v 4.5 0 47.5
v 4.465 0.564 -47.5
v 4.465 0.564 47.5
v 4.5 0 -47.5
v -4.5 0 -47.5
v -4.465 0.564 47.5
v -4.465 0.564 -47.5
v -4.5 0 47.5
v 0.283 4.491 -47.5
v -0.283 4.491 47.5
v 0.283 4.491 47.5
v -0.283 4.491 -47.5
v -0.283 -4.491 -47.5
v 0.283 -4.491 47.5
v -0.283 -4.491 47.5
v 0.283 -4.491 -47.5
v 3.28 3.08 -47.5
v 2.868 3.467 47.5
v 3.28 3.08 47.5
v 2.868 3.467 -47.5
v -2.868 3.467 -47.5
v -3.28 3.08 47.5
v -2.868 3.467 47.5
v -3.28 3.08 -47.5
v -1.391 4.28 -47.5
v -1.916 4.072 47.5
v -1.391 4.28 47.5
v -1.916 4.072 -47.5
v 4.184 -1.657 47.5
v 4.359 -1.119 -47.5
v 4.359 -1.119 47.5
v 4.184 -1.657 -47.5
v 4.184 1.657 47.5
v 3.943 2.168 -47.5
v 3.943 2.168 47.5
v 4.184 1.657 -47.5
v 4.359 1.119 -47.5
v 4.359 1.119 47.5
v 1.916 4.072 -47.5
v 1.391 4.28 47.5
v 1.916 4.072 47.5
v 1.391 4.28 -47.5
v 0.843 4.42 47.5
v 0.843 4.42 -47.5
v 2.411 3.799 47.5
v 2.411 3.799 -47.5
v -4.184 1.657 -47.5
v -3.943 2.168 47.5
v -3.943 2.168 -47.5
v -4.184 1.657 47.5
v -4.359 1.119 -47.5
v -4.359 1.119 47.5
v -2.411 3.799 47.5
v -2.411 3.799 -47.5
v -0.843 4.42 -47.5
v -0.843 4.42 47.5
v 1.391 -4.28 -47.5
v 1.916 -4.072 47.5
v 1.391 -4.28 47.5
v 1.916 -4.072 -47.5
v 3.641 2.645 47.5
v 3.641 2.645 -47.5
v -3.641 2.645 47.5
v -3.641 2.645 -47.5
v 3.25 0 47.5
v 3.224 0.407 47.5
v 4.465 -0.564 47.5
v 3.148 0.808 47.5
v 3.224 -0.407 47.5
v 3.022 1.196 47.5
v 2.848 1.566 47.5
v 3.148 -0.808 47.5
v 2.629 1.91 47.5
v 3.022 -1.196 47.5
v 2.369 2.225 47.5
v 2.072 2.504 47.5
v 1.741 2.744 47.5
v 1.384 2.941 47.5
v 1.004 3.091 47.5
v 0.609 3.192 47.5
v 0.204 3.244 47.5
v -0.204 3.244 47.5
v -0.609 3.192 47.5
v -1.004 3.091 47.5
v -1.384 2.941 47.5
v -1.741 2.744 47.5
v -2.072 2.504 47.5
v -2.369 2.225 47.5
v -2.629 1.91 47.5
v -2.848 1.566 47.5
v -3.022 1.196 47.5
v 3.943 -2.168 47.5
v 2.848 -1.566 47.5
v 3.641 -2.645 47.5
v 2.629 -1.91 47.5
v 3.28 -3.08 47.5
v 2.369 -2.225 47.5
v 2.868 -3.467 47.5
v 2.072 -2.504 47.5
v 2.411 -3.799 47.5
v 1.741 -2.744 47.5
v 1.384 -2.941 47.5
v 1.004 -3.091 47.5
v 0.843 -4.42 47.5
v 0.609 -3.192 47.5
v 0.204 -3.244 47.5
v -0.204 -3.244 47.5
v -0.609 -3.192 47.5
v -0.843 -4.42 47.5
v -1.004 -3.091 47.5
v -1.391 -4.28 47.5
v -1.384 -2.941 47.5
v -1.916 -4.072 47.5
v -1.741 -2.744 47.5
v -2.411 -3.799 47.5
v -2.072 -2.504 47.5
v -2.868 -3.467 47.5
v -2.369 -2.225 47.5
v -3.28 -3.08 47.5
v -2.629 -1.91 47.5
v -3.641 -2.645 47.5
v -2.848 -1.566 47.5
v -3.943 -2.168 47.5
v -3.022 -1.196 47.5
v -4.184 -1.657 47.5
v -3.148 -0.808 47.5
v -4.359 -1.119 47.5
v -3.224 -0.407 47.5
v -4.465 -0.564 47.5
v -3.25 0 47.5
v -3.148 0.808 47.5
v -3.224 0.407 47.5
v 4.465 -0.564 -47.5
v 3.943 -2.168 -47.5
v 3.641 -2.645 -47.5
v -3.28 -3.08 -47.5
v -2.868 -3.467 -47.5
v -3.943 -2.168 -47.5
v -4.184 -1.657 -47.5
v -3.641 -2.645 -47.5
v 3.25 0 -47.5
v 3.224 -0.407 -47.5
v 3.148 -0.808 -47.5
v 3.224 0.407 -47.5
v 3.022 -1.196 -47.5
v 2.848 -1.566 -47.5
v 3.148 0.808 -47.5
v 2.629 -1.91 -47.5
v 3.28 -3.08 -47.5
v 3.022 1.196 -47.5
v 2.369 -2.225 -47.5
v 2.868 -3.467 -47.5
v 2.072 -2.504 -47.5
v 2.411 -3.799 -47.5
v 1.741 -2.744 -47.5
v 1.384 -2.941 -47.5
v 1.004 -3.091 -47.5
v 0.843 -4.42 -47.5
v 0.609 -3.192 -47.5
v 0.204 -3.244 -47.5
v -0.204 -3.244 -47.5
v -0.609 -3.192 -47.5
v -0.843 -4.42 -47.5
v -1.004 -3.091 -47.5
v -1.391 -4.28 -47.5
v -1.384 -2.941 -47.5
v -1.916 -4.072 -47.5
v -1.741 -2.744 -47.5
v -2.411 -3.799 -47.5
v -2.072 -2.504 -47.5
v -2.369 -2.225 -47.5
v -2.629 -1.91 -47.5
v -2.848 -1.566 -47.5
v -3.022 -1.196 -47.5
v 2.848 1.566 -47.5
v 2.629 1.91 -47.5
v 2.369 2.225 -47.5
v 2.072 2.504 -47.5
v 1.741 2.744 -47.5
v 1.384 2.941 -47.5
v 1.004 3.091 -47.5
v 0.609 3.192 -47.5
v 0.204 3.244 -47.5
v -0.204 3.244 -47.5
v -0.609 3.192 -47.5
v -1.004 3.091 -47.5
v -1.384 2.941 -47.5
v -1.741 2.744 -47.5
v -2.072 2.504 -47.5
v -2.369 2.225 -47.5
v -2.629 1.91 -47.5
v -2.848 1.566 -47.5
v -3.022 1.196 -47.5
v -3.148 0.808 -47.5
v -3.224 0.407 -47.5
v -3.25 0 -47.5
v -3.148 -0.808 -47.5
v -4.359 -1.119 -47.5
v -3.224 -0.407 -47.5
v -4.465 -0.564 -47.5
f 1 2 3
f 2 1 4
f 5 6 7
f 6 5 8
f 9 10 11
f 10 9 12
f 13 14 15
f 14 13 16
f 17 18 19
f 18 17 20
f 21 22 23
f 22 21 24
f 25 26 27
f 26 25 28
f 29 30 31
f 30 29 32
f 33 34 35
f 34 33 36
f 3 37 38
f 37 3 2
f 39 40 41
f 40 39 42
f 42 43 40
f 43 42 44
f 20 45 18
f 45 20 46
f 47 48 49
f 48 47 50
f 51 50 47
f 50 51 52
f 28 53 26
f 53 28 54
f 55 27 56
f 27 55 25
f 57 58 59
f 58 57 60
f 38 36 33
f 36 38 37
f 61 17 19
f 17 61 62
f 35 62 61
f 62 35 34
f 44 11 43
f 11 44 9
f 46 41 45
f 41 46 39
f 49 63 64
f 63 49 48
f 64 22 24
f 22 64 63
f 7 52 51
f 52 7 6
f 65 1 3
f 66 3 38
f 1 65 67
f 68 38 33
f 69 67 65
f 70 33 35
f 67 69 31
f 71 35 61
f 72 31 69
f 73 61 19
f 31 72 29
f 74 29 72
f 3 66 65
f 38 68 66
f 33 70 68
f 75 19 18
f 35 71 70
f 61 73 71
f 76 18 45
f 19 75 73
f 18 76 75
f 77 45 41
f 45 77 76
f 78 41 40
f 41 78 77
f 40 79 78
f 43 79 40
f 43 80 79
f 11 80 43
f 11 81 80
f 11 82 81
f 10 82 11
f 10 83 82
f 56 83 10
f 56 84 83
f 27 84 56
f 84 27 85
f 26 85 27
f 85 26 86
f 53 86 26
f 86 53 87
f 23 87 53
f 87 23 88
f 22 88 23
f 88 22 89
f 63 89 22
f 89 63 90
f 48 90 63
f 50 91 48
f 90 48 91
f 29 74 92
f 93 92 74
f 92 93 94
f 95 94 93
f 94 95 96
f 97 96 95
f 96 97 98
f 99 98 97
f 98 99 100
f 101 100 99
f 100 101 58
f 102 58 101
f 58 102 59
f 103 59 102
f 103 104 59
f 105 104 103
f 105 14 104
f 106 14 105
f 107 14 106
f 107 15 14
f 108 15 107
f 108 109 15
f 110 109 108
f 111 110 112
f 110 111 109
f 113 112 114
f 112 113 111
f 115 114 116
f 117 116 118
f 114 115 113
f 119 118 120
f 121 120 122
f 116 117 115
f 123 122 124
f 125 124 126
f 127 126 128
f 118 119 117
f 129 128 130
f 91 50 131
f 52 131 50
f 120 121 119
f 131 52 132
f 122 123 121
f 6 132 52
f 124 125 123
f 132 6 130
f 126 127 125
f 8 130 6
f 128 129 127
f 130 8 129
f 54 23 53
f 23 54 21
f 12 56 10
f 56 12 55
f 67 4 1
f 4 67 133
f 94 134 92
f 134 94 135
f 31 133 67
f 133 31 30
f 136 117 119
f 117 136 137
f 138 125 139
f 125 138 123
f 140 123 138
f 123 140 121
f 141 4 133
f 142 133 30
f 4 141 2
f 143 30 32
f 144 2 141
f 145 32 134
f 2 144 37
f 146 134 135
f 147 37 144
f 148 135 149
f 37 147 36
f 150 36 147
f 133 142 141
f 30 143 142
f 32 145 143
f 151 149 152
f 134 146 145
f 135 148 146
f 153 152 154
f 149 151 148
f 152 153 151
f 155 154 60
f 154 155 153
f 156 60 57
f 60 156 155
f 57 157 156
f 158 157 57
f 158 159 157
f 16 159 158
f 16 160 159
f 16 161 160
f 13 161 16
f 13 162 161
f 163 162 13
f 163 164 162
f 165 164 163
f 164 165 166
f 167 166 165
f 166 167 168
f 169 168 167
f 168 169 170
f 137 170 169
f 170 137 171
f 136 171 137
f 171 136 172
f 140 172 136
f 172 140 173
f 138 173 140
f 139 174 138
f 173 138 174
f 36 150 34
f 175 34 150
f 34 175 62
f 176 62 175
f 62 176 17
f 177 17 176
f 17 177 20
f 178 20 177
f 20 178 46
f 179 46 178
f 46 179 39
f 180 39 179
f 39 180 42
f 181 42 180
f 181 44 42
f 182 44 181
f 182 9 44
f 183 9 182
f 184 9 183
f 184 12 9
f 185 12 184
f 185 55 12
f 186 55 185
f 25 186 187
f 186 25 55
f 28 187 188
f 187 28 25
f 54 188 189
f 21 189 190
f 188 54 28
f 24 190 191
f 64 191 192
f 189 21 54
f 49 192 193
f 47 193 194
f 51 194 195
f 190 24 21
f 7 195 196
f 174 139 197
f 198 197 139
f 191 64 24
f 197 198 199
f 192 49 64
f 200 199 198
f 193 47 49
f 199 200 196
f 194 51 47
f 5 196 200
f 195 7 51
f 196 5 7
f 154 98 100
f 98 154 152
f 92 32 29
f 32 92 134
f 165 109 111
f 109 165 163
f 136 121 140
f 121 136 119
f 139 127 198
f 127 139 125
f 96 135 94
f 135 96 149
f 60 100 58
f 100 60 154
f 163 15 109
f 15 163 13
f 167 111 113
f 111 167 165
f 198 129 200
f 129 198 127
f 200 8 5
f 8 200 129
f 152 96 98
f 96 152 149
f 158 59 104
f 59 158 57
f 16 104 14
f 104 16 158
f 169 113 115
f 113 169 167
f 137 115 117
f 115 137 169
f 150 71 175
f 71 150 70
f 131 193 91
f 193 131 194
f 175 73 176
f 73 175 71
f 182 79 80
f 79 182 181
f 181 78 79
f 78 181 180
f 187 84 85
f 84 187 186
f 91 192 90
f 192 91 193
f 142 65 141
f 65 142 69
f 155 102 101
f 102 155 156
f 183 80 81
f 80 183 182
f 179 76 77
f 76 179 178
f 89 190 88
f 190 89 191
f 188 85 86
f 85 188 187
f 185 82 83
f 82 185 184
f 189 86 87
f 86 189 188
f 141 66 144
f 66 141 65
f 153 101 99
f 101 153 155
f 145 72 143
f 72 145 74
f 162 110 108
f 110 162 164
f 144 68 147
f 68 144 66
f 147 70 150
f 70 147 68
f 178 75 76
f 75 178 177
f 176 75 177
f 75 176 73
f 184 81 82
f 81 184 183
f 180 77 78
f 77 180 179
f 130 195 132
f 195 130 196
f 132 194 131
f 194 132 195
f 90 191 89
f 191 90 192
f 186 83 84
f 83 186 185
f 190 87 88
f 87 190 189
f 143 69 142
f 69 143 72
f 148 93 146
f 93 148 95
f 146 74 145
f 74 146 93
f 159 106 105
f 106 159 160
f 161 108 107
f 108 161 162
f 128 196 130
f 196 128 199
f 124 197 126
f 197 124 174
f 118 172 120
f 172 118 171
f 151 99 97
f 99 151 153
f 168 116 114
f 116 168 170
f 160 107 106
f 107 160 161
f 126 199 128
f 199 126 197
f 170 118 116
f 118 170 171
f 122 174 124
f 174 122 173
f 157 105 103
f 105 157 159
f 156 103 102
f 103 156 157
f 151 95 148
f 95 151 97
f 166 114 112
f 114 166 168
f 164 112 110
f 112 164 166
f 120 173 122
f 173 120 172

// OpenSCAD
$fn = 50;


difference() {
	union() {
		translate(v = [0, 0, -47.5000000000]) {
			cylinder(h = 95, r = 4.5000000000);
		}
	}
	union() {
		translate(v = [0, 0, -100.0000000000]) {
			cylinder(h = 200, r = 3.2500000000);
		}
	}
}
